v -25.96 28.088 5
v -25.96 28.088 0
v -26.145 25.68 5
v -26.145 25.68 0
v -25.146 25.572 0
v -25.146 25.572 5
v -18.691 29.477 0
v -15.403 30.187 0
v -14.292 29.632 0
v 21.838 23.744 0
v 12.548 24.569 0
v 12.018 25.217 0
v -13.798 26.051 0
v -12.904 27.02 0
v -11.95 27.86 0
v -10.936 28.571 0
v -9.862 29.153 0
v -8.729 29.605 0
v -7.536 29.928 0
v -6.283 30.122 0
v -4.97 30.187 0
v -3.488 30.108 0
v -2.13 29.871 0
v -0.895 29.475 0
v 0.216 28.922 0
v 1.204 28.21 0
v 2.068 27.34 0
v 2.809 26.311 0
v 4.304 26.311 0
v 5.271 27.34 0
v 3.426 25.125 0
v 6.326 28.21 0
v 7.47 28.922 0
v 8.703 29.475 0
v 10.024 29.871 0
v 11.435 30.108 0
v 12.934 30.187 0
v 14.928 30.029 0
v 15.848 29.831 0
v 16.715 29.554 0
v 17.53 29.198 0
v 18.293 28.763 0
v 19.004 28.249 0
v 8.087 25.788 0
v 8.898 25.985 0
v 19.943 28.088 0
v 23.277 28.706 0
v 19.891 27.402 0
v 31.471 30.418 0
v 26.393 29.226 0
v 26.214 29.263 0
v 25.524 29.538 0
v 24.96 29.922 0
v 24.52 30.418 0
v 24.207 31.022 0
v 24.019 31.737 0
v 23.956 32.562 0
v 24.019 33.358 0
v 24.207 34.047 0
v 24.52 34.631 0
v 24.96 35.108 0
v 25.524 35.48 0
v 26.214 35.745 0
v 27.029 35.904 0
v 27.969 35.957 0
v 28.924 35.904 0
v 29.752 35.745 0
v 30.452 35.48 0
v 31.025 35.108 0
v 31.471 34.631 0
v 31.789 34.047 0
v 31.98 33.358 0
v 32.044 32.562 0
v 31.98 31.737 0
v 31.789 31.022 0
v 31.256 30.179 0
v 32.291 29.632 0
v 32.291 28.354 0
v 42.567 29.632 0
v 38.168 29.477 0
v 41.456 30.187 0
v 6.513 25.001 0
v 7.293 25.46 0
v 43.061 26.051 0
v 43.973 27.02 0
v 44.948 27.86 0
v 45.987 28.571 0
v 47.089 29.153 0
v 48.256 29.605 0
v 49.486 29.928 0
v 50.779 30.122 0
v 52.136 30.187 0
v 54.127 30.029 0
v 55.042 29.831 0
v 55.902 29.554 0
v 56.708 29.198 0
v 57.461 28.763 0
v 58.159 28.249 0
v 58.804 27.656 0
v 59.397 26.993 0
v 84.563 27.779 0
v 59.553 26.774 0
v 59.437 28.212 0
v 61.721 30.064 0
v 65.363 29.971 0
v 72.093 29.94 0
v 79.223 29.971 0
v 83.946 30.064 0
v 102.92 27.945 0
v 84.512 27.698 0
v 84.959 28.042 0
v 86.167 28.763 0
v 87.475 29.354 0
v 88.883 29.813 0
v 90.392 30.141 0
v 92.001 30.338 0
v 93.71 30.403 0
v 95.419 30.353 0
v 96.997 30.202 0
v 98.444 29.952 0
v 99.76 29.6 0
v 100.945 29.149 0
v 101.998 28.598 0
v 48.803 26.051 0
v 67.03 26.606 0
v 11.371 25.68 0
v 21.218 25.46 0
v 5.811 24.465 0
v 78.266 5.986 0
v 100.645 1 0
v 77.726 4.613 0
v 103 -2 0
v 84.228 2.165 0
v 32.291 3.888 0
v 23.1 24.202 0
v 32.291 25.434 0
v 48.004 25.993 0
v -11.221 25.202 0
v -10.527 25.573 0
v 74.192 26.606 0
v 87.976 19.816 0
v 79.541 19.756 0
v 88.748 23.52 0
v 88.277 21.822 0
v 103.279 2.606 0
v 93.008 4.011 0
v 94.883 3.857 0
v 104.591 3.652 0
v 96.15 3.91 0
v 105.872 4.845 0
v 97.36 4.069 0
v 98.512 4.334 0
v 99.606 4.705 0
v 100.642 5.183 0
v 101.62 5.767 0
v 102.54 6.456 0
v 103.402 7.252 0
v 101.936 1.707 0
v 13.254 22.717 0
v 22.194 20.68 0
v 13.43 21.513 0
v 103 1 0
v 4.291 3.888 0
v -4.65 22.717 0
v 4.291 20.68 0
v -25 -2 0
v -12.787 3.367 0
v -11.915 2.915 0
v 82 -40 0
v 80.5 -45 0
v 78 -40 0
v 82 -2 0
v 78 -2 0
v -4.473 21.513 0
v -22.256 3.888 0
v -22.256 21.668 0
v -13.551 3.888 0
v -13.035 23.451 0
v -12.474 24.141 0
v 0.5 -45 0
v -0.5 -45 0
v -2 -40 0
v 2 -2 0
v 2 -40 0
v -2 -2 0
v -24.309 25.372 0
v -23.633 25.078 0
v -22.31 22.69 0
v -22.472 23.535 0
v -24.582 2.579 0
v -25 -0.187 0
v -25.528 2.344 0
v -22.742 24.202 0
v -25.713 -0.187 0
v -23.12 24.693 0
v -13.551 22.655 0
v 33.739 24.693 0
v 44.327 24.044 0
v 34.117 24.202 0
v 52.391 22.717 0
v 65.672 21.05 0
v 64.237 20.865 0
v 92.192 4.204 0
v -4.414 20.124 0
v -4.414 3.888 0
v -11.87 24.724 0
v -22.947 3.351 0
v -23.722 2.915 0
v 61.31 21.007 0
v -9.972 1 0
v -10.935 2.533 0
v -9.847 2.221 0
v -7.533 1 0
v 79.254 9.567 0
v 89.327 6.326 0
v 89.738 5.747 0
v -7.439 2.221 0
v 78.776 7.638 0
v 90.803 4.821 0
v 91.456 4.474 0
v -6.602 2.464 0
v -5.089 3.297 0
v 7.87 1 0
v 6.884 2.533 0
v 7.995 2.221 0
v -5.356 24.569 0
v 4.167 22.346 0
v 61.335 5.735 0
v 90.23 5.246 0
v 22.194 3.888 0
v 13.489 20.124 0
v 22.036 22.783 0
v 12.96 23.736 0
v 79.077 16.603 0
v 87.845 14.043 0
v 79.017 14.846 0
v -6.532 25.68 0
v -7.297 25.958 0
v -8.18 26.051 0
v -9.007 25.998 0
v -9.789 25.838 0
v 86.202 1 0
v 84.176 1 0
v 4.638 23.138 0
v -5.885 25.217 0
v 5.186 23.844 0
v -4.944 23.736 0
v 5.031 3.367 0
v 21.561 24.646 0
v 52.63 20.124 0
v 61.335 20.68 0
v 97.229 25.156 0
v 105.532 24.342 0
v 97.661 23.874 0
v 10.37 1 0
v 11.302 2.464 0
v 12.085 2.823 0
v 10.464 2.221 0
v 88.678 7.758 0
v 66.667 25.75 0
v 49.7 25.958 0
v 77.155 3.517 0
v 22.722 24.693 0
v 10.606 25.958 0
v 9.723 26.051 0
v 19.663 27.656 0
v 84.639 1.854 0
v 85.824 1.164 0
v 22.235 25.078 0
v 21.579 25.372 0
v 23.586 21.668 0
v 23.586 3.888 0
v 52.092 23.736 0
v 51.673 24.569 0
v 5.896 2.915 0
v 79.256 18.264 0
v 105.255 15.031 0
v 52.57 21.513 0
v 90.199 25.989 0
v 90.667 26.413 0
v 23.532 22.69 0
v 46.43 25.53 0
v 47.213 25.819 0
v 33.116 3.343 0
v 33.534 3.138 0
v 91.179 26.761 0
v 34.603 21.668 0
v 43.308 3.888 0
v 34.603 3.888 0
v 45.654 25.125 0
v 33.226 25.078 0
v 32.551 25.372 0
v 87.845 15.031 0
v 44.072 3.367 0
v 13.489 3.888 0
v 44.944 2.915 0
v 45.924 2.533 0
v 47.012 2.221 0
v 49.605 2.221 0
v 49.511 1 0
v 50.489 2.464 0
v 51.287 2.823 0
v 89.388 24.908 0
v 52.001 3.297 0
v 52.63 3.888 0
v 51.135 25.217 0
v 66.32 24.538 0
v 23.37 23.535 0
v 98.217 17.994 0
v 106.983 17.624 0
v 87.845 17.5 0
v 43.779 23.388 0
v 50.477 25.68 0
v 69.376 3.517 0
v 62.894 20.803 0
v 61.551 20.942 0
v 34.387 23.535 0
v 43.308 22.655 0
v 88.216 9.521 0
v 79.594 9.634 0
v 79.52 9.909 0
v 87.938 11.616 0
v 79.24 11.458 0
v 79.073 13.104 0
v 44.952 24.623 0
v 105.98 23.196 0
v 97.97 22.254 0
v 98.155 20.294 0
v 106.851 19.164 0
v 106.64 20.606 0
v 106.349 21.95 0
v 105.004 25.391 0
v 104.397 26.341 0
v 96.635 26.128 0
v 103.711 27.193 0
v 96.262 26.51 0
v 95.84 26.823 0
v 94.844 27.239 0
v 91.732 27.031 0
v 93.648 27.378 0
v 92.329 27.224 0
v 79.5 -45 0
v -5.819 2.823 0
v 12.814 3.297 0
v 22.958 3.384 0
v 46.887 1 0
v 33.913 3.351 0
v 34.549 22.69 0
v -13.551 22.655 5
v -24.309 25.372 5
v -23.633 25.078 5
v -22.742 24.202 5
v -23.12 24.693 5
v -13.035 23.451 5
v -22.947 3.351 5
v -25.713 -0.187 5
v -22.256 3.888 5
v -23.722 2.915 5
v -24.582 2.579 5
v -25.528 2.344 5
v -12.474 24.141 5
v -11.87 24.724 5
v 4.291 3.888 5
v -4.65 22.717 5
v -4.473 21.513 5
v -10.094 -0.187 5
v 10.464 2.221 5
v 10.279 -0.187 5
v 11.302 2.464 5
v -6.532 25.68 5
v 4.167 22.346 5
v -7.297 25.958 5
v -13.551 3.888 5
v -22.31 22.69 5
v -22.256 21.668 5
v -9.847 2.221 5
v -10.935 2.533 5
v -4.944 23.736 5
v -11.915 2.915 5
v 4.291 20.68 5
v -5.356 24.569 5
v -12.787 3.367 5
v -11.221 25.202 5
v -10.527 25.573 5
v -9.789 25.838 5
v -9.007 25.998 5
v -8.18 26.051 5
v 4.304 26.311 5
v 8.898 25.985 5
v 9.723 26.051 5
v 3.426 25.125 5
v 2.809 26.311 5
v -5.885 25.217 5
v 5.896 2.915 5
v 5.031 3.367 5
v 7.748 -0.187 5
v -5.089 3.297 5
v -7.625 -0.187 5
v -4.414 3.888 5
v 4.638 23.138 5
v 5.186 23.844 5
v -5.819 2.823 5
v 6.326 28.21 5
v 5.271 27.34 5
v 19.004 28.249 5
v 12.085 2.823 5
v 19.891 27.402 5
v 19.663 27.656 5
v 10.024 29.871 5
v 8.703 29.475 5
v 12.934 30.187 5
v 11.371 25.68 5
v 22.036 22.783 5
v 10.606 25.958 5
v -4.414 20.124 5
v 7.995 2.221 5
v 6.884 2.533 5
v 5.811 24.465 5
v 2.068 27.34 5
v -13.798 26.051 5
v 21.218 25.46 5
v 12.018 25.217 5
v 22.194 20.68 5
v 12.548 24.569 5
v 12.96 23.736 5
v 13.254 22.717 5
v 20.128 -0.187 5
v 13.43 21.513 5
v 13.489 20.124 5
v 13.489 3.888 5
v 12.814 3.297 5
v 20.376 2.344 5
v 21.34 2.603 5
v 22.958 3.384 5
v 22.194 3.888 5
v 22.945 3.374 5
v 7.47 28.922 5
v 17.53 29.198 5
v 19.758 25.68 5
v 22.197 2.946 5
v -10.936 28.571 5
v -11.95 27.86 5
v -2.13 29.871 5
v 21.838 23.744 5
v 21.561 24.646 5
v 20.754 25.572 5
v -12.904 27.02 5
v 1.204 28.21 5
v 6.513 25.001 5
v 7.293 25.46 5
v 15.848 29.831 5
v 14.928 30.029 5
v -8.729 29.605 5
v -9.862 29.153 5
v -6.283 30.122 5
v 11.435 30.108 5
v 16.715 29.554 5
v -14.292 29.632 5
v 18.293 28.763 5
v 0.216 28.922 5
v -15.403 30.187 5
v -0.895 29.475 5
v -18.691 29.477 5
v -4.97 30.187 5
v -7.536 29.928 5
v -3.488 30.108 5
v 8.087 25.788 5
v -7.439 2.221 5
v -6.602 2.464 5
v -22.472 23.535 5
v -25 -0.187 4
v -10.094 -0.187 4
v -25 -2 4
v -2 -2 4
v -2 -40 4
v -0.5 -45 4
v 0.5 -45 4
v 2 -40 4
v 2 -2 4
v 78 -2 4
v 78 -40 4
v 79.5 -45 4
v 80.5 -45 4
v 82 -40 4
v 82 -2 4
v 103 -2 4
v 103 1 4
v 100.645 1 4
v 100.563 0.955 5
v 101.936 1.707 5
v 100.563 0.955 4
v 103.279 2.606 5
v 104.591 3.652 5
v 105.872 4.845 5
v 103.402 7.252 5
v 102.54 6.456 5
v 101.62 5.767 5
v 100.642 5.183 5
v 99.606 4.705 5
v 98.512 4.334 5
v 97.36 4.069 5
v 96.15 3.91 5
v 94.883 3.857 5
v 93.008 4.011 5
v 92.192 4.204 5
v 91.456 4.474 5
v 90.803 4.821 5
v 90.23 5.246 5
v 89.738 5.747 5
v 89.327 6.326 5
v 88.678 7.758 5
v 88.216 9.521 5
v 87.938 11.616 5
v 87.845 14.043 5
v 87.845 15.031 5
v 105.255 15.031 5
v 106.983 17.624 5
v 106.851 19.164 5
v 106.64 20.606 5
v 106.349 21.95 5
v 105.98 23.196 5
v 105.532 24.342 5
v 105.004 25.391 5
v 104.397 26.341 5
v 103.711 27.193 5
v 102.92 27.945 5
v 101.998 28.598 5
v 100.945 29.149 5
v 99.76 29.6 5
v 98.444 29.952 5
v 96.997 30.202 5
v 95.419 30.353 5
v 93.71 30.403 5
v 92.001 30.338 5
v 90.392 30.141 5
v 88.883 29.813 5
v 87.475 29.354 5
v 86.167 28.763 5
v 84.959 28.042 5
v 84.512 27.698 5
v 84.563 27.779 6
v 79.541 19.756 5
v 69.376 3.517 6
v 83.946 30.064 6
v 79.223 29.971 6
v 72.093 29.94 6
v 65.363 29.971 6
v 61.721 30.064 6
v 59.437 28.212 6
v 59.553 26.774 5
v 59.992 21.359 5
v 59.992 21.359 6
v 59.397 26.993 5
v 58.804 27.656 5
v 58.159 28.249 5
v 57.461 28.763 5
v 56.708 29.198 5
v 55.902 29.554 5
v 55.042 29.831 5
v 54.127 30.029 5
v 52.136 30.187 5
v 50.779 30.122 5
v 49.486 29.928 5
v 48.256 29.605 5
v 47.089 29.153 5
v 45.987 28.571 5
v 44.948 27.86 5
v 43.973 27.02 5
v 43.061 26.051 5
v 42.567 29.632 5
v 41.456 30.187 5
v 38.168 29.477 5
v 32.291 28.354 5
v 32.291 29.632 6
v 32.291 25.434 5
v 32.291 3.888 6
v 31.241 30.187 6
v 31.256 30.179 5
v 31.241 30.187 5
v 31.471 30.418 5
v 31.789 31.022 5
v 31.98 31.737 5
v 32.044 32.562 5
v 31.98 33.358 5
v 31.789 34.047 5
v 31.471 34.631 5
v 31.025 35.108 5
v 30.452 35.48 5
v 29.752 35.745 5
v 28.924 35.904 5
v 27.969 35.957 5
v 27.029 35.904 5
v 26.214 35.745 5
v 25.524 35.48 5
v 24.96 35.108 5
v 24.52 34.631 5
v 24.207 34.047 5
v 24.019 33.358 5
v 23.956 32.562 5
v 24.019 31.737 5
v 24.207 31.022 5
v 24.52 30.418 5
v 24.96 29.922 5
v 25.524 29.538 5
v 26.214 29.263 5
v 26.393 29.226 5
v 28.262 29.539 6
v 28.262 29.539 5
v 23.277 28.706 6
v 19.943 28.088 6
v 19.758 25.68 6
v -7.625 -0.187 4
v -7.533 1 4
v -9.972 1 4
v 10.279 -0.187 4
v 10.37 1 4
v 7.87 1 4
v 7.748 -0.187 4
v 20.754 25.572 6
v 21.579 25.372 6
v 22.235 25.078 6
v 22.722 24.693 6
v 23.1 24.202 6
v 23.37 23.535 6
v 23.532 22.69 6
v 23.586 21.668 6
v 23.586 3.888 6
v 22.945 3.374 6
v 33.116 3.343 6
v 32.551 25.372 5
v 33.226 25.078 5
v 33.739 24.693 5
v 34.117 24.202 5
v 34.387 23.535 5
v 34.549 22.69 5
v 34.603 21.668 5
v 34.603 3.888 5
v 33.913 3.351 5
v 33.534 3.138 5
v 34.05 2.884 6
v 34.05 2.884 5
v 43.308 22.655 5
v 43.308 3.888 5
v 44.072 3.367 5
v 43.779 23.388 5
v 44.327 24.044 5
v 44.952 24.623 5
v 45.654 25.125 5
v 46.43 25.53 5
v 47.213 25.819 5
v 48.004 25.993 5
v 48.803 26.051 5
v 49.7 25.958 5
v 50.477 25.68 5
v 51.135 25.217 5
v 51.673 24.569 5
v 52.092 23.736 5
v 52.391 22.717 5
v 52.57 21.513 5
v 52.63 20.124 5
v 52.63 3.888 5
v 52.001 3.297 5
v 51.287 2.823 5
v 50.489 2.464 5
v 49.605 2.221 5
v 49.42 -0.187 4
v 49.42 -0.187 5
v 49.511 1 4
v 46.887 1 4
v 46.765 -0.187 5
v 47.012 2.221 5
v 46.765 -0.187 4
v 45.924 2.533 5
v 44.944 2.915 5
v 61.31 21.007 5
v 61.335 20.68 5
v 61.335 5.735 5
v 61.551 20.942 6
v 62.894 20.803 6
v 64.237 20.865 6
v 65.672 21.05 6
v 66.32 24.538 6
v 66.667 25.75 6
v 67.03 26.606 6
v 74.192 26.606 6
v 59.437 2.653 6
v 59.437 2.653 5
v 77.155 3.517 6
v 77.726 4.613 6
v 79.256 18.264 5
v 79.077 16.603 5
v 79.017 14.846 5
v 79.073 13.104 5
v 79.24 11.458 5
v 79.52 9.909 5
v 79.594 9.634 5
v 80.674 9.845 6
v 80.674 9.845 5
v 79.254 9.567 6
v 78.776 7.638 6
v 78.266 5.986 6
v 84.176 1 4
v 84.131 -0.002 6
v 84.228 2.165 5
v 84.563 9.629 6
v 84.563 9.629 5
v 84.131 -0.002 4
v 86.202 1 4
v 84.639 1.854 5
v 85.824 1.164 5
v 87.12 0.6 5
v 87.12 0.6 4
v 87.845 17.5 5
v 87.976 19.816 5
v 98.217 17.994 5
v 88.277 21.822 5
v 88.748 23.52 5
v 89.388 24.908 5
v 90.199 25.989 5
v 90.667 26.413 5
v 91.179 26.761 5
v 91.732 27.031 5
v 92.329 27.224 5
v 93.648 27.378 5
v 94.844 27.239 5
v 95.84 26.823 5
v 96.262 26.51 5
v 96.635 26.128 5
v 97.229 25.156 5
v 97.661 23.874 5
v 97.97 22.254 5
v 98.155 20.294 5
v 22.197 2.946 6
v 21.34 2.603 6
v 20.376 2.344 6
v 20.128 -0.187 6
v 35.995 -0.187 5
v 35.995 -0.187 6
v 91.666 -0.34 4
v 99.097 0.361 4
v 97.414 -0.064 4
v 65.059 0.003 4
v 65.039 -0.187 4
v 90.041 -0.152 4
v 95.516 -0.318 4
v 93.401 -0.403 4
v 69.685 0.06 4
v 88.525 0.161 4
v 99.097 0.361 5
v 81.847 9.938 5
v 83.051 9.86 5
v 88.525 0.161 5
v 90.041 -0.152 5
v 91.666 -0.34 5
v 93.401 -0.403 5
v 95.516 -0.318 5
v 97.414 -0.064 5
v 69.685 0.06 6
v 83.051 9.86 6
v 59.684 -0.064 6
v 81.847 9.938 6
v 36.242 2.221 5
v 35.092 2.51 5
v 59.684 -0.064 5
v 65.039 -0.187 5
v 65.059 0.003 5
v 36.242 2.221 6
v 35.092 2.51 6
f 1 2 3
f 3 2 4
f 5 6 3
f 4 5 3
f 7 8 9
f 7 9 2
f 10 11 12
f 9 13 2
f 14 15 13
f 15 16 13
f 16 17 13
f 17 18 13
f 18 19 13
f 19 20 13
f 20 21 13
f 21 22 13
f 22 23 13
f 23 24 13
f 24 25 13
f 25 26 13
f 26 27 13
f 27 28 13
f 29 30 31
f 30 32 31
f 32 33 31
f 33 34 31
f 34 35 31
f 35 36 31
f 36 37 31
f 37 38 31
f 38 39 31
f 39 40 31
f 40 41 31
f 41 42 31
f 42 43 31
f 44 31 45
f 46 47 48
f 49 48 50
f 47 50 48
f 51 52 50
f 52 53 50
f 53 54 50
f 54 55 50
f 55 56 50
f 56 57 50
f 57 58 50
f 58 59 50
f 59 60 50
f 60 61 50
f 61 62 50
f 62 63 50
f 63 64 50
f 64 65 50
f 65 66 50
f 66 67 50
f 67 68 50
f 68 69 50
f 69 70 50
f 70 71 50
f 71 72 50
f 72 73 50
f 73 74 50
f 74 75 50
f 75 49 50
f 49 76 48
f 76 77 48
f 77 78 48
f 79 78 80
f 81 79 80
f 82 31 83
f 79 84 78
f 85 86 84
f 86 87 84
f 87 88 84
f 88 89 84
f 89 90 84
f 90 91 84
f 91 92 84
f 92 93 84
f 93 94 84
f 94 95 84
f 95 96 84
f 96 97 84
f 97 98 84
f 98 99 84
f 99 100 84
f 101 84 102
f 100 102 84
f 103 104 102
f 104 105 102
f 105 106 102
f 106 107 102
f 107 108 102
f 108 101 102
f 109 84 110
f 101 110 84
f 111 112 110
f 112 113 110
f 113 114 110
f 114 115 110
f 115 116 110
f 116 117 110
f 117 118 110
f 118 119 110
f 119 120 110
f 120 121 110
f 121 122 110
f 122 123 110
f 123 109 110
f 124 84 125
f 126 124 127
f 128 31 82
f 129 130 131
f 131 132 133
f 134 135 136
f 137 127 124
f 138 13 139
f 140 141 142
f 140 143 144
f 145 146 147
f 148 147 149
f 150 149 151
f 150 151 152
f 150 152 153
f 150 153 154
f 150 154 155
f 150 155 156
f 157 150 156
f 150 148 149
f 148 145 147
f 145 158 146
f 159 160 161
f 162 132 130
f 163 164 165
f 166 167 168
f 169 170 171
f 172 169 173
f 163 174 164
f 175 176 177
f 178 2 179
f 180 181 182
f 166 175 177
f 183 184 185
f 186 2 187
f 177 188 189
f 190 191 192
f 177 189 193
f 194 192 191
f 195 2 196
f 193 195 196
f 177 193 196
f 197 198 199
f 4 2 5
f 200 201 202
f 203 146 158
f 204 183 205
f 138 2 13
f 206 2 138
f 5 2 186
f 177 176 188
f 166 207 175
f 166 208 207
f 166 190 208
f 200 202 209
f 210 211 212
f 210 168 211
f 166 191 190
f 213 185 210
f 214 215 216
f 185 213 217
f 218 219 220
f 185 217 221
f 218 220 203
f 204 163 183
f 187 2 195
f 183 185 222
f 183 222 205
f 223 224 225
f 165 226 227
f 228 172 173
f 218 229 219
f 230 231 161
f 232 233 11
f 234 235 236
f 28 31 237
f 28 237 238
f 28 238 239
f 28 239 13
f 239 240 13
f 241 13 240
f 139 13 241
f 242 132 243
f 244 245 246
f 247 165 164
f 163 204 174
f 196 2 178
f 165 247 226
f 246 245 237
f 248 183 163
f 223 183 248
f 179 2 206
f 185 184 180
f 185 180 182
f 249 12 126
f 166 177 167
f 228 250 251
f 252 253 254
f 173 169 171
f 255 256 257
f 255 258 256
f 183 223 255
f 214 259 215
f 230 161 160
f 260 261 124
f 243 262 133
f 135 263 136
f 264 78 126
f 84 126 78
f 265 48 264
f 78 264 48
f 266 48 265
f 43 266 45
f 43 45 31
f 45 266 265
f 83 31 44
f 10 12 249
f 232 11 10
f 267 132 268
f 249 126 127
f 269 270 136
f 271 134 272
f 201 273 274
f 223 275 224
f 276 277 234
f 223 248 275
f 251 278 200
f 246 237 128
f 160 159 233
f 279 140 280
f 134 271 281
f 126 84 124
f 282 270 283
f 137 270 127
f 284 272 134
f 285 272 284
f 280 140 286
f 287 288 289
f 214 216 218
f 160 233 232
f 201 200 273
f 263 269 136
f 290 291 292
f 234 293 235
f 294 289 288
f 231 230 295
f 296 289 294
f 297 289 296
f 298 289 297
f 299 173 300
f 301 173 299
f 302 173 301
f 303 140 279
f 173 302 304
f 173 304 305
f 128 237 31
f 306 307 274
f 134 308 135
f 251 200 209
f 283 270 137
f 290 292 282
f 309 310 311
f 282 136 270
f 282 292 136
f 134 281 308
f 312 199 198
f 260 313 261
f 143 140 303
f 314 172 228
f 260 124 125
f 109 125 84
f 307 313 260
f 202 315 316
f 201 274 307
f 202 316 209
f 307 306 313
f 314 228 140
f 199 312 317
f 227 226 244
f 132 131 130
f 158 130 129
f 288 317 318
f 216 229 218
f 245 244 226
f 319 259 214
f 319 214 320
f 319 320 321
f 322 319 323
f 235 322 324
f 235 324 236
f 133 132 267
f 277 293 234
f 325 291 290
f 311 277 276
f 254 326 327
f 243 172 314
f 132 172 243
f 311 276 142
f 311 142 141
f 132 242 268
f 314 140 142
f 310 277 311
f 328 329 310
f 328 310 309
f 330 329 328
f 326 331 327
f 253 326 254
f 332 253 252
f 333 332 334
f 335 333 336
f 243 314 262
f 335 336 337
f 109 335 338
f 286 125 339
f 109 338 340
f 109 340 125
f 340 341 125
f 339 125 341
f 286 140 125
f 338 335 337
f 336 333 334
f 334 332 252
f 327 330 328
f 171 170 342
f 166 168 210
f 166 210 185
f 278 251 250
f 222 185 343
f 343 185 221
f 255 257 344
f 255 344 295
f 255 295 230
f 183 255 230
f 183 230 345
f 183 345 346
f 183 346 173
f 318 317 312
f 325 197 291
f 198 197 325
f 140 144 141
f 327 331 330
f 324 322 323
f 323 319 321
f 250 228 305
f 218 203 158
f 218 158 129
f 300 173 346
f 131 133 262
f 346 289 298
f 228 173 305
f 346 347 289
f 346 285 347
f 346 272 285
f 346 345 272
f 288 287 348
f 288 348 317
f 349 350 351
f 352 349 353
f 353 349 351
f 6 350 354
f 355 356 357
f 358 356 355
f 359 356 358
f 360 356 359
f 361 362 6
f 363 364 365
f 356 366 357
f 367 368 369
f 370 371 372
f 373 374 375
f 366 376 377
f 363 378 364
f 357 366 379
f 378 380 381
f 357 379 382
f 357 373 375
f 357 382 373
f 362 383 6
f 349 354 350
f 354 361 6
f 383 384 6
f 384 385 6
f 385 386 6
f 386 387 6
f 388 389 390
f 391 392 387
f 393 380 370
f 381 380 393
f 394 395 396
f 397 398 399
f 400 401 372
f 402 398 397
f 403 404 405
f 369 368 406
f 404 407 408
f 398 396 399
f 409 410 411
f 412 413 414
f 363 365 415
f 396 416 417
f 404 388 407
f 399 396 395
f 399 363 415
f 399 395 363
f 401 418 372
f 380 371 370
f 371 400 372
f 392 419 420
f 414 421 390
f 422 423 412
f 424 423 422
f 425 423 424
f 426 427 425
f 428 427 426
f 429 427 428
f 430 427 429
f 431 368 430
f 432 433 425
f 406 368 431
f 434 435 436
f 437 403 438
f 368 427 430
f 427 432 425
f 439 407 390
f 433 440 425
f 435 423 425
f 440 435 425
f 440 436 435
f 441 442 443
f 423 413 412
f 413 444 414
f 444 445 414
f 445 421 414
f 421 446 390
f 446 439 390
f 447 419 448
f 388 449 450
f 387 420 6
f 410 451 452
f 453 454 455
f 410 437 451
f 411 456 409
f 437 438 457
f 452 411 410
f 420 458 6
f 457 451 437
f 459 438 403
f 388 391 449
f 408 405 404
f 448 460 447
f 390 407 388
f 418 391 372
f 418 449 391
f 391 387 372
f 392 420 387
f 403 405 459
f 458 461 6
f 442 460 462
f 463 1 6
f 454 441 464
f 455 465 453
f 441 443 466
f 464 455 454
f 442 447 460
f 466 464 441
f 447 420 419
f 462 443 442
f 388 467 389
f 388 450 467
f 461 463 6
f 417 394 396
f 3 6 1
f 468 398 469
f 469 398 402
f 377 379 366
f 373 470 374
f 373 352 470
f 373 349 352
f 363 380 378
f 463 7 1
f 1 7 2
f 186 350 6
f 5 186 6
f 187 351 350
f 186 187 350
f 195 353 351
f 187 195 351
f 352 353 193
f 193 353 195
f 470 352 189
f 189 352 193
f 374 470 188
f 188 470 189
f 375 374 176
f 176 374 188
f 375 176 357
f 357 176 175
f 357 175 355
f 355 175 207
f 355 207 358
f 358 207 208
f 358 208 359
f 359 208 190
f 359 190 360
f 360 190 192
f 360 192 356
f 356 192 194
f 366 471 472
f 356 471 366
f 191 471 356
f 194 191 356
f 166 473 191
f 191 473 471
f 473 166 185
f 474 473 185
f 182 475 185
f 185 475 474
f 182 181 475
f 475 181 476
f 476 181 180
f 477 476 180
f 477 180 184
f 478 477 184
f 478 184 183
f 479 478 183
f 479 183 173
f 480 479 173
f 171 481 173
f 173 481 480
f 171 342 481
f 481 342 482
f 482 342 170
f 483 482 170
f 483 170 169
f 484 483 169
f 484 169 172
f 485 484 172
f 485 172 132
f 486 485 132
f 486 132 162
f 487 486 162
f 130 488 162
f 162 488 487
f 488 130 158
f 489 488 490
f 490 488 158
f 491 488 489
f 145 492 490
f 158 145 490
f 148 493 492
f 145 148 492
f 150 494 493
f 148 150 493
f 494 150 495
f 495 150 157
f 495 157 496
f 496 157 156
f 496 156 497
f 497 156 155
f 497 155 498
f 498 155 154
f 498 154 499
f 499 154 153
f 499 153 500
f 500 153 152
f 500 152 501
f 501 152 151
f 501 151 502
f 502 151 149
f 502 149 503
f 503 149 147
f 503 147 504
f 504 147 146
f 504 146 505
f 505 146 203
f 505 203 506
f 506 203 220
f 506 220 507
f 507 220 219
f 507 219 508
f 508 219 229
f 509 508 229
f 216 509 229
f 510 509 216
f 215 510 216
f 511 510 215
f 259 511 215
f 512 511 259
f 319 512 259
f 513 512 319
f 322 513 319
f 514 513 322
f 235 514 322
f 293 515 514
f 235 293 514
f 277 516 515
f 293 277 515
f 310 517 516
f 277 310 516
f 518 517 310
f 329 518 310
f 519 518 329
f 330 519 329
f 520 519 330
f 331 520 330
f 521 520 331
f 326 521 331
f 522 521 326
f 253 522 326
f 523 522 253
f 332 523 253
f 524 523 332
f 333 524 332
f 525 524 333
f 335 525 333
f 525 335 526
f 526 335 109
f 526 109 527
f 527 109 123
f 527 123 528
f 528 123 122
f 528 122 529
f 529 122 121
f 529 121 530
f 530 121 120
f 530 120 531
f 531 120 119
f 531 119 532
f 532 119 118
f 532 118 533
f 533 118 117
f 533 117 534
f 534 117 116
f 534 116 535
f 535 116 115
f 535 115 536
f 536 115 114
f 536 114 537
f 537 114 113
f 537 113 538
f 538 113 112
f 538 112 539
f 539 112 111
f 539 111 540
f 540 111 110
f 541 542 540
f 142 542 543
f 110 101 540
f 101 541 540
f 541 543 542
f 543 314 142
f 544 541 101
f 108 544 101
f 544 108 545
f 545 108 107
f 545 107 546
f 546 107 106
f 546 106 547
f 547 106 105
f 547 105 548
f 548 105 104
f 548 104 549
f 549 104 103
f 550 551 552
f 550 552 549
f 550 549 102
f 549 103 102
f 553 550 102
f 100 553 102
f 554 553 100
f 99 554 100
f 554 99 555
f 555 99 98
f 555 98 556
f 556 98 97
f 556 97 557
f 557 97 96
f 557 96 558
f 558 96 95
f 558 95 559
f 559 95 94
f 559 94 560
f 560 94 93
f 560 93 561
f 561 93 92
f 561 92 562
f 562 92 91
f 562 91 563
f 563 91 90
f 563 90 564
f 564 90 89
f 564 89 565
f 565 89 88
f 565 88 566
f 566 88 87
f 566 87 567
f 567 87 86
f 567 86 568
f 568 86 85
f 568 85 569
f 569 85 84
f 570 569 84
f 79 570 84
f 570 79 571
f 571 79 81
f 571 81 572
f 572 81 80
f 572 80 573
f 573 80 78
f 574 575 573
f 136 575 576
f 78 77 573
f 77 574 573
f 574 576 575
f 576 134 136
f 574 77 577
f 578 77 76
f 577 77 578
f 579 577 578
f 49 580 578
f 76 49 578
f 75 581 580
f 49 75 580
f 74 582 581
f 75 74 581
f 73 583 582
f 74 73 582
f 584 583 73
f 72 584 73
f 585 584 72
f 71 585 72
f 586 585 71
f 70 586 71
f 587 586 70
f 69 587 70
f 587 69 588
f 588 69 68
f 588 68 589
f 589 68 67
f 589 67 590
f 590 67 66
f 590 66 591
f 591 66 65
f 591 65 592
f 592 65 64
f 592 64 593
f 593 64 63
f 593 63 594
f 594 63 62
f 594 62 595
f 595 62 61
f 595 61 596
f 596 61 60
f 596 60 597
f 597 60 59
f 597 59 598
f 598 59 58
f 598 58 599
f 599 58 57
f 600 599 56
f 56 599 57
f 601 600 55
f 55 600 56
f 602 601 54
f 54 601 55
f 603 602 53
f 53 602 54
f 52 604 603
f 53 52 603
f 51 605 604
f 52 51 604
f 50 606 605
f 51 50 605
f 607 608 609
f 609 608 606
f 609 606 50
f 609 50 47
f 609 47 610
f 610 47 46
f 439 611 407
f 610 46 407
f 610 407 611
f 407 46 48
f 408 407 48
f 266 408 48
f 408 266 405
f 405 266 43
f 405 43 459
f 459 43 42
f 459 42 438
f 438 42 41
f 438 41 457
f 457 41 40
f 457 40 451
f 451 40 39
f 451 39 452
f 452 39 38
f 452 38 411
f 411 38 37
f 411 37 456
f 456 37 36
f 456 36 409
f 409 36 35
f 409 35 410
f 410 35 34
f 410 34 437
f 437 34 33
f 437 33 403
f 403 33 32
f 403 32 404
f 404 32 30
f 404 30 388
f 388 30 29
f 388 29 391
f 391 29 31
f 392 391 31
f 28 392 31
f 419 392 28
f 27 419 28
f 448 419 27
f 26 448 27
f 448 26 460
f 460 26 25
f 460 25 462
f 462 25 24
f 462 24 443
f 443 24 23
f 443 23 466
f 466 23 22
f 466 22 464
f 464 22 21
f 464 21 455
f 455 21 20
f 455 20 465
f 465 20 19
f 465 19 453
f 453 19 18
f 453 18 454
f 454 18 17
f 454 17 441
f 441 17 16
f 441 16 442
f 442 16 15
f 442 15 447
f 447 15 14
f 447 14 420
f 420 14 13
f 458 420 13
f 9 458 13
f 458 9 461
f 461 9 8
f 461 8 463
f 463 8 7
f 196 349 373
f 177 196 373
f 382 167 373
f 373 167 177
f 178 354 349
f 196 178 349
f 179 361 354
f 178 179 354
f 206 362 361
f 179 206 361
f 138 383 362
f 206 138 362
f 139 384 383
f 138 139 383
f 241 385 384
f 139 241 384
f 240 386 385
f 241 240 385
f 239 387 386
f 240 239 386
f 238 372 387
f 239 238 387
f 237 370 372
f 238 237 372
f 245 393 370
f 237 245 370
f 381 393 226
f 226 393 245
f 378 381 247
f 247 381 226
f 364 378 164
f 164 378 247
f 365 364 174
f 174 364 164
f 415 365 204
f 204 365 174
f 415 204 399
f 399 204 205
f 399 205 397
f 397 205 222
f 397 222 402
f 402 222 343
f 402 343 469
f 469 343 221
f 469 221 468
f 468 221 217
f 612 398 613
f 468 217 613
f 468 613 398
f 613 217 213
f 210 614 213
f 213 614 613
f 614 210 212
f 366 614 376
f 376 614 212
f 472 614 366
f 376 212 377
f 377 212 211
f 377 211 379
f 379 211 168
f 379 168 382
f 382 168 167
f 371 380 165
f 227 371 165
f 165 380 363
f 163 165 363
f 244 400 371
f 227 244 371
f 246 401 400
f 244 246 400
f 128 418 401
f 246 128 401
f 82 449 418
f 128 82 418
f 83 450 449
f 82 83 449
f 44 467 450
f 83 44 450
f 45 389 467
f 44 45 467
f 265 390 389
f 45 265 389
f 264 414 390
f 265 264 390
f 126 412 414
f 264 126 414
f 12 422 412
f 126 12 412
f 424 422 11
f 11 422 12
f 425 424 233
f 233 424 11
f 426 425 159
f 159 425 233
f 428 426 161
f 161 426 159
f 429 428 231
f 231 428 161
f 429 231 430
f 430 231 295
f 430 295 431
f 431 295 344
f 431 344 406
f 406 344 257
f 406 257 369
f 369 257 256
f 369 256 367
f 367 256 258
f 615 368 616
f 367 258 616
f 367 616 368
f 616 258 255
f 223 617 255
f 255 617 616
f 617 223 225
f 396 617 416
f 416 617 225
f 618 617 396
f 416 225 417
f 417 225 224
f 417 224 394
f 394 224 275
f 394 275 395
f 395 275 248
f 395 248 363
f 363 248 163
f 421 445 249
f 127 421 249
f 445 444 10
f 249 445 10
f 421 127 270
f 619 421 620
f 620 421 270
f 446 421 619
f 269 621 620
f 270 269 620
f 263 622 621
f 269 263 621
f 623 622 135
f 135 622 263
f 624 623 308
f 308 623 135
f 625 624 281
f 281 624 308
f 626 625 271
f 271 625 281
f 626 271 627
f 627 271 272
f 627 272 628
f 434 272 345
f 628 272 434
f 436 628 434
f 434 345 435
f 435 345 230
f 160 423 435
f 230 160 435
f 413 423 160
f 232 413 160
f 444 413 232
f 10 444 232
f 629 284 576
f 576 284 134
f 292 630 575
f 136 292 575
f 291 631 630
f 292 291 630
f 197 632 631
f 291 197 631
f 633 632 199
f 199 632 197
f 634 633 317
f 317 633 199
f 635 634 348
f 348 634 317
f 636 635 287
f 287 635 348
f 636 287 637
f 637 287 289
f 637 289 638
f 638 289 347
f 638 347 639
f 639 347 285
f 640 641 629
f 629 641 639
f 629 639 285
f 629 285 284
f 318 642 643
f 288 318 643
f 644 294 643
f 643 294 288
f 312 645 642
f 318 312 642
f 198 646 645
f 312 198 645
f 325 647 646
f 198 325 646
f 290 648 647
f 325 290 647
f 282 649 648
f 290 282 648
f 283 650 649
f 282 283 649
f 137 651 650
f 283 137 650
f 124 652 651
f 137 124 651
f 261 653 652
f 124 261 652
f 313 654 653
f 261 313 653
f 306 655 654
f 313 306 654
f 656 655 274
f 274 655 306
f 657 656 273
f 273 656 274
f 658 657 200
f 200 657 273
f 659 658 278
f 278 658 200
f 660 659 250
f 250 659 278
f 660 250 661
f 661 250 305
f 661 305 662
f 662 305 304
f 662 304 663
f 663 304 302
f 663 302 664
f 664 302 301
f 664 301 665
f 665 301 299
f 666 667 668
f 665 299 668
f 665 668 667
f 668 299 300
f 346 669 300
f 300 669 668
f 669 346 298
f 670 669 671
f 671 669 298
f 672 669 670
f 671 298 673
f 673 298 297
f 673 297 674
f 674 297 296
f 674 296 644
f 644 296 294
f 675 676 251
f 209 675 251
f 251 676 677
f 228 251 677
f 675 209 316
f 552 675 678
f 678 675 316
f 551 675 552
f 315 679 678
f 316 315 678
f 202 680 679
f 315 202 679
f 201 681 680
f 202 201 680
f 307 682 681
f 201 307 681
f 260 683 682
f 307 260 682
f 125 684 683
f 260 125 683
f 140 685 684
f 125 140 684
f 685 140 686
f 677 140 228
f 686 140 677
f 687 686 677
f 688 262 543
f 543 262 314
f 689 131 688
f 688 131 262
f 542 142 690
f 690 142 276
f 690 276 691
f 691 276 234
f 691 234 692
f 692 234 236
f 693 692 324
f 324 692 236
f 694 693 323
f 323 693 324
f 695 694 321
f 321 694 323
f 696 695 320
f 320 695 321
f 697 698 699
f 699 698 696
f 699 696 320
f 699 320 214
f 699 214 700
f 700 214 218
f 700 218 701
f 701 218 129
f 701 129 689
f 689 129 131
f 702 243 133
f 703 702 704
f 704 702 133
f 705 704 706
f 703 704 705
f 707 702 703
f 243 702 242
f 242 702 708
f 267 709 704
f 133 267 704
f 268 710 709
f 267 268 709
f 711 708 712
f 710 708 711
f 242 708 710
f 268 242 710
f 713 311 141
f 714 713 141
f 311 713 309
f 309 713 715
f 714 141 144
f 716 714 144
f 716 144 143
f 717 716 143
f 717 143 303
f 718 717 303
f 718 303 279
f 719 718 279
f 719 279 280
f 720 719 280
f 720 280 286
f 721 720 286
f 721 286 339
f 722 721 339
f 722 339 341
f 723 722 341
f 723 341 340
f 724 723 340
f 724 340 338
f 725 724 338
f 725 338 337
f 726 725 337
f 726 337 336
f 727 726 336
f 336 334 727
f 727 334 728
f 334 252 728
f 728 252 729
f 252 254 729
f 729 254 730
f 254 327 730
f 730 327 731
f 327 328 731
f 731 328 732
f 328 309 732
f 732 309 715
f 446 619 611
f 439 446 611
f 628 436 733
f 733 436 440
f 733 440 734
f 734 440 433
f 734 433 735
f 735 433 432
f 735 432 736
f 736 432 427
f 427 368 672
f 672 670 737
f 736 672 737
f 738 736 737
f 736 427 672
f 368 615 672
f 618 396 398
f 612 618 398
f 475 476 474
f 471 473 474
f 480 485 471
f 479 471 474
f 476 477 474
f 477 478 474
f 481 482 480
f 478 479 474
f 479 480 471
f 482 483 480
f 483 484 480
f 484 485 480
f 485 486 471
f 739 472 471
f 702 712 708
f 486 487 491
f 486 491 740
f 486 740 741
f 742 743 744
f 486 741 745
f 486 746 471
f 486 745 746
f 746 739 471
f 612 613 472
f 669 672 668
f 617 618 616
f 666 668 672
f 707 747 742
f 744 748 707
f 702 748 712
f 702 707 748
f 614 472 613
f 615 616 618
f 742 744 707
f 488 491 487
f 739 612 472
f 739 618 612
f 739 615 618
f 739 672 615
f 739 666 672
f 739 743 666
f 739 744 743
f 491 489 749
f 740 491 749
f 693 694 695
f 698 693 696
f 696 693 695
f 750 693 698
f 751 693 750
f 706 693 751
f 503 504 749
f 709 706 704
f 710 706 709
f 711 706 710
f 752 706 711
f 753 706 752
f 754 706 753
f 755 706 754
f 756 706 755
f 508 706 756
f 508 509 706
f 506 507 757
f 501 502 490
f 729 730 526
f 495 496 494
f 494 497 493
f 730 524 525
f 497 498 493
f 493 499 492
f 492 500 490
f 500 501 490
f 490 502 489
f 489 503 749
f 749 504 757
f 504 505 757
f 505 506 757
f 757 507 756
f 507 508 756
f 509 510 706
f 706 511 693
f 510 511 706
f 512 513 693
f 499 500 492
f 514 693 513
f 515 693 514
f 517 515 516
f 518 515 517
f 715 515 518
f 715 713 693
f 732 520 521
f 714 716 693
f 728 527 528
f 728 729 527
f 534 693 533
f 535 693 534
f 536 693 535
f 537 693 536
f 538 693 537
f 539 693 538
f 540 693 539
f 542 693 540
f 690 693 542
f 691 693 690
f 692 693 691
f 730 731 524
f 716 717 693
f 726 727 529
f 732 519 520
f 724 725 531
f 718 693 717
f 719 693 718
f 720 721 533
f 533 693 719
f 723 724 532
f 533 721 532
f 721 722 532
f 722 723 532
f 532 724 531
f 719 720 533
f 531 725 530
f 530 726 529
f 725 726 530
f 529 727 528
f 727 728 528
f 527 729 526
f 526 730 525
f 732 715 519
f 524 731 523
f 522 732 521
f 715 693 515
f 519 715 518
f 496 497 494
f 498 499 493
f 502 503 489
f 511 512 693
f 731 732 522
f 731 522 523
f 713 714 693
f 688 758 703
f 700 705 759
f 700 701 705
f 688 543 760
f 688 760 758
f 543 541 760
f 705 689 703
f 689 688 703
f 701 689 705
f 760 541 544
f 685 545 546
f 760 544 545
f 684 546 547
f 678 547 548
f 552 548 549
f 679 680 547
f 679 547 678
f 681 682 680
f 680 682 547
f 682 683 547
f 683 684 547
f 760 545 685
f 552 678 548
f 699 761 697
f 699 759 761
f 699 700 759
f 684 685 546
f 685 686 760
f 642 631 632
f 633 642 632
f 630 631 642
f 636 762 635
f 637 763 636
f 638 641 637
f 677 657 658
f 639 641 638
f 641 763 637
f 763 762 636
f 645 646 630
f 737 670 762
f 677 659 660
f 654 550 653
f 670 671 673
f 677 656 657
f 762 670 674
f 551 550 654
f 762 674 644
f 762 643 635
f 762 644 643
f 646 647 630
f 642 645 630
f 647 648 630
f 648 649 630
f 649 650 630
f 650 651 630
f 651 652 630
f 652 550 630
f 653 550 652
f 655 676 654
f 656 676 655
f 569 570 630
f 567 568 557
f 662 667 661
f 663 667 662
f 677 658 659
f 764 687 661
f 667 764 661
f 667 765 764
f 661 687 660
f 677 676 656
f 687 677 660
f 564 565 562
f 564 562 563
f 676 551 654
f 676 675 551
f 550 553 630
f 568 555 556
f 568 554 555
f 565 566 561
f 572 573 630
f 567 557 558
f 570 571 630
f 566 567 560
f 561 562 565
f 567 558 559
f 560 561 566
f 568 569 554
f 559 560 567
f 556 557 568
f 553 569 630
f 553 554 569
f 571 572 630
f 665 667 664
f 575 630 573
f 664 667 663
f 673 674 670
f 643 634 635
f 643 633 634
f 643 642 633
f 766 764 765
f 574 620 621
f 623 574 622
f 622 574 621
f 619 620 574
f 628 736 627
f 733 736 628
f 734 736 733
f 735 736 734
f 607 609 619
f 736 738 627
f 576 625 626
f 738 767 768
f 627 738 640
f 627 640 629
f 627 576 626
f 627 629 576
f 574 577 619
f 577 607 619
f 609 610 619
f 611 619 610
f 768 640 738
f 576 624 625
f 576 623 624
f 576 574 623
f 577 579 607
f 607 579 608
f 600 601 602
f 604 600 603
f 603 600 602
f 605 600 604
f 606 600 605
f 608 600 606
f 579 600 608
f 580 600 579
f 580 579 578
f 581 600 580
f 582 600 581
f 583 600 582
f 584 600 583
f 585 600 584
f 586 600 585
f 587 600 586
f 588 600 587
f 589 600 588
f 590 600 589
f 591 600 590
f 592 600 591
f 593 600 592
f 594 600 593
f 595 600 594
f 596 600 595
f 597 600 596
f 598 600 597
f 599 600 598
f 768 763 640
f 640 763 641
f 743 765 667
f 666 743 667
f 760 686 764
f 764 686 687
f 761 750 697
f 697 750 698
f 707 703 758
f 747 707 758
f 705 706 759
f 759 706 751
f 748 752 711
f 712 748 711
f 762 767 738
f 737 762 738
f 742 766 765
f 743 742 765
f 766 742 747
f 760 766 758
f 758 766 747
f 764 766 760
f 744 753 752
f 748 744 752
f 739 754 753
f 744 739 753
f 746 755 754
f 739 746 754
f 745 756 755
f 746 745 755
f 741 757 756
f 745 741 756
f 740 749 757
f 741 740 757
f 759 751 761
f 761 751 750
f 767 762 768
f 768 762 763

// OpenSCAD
fudge = 0.1;


include <letters.scad>;

module nail(l,w,h){
	hull(){
	translate([-w/2,5,0]) cube([w,l,h]);
	translate([-0.5,0,0]) cube([1,1,h]);
	}
}

translate([0,15,0]) letter_m(5);
translate([28,15.0,0]) letter_i(6);
translate([28,32.5,0]) dot(5);
translate([48,15,0]) letter_n(5);
translate([72,15.0,0]) letter_z(6);
translate([93,15,0]) letter_e(5);


translate([-25,-2,0]) cube([128,3,4]);

translate([0,-45,0]) nail(40,4,4);
translate([80,-45,0]) nail(40,4,4);	
